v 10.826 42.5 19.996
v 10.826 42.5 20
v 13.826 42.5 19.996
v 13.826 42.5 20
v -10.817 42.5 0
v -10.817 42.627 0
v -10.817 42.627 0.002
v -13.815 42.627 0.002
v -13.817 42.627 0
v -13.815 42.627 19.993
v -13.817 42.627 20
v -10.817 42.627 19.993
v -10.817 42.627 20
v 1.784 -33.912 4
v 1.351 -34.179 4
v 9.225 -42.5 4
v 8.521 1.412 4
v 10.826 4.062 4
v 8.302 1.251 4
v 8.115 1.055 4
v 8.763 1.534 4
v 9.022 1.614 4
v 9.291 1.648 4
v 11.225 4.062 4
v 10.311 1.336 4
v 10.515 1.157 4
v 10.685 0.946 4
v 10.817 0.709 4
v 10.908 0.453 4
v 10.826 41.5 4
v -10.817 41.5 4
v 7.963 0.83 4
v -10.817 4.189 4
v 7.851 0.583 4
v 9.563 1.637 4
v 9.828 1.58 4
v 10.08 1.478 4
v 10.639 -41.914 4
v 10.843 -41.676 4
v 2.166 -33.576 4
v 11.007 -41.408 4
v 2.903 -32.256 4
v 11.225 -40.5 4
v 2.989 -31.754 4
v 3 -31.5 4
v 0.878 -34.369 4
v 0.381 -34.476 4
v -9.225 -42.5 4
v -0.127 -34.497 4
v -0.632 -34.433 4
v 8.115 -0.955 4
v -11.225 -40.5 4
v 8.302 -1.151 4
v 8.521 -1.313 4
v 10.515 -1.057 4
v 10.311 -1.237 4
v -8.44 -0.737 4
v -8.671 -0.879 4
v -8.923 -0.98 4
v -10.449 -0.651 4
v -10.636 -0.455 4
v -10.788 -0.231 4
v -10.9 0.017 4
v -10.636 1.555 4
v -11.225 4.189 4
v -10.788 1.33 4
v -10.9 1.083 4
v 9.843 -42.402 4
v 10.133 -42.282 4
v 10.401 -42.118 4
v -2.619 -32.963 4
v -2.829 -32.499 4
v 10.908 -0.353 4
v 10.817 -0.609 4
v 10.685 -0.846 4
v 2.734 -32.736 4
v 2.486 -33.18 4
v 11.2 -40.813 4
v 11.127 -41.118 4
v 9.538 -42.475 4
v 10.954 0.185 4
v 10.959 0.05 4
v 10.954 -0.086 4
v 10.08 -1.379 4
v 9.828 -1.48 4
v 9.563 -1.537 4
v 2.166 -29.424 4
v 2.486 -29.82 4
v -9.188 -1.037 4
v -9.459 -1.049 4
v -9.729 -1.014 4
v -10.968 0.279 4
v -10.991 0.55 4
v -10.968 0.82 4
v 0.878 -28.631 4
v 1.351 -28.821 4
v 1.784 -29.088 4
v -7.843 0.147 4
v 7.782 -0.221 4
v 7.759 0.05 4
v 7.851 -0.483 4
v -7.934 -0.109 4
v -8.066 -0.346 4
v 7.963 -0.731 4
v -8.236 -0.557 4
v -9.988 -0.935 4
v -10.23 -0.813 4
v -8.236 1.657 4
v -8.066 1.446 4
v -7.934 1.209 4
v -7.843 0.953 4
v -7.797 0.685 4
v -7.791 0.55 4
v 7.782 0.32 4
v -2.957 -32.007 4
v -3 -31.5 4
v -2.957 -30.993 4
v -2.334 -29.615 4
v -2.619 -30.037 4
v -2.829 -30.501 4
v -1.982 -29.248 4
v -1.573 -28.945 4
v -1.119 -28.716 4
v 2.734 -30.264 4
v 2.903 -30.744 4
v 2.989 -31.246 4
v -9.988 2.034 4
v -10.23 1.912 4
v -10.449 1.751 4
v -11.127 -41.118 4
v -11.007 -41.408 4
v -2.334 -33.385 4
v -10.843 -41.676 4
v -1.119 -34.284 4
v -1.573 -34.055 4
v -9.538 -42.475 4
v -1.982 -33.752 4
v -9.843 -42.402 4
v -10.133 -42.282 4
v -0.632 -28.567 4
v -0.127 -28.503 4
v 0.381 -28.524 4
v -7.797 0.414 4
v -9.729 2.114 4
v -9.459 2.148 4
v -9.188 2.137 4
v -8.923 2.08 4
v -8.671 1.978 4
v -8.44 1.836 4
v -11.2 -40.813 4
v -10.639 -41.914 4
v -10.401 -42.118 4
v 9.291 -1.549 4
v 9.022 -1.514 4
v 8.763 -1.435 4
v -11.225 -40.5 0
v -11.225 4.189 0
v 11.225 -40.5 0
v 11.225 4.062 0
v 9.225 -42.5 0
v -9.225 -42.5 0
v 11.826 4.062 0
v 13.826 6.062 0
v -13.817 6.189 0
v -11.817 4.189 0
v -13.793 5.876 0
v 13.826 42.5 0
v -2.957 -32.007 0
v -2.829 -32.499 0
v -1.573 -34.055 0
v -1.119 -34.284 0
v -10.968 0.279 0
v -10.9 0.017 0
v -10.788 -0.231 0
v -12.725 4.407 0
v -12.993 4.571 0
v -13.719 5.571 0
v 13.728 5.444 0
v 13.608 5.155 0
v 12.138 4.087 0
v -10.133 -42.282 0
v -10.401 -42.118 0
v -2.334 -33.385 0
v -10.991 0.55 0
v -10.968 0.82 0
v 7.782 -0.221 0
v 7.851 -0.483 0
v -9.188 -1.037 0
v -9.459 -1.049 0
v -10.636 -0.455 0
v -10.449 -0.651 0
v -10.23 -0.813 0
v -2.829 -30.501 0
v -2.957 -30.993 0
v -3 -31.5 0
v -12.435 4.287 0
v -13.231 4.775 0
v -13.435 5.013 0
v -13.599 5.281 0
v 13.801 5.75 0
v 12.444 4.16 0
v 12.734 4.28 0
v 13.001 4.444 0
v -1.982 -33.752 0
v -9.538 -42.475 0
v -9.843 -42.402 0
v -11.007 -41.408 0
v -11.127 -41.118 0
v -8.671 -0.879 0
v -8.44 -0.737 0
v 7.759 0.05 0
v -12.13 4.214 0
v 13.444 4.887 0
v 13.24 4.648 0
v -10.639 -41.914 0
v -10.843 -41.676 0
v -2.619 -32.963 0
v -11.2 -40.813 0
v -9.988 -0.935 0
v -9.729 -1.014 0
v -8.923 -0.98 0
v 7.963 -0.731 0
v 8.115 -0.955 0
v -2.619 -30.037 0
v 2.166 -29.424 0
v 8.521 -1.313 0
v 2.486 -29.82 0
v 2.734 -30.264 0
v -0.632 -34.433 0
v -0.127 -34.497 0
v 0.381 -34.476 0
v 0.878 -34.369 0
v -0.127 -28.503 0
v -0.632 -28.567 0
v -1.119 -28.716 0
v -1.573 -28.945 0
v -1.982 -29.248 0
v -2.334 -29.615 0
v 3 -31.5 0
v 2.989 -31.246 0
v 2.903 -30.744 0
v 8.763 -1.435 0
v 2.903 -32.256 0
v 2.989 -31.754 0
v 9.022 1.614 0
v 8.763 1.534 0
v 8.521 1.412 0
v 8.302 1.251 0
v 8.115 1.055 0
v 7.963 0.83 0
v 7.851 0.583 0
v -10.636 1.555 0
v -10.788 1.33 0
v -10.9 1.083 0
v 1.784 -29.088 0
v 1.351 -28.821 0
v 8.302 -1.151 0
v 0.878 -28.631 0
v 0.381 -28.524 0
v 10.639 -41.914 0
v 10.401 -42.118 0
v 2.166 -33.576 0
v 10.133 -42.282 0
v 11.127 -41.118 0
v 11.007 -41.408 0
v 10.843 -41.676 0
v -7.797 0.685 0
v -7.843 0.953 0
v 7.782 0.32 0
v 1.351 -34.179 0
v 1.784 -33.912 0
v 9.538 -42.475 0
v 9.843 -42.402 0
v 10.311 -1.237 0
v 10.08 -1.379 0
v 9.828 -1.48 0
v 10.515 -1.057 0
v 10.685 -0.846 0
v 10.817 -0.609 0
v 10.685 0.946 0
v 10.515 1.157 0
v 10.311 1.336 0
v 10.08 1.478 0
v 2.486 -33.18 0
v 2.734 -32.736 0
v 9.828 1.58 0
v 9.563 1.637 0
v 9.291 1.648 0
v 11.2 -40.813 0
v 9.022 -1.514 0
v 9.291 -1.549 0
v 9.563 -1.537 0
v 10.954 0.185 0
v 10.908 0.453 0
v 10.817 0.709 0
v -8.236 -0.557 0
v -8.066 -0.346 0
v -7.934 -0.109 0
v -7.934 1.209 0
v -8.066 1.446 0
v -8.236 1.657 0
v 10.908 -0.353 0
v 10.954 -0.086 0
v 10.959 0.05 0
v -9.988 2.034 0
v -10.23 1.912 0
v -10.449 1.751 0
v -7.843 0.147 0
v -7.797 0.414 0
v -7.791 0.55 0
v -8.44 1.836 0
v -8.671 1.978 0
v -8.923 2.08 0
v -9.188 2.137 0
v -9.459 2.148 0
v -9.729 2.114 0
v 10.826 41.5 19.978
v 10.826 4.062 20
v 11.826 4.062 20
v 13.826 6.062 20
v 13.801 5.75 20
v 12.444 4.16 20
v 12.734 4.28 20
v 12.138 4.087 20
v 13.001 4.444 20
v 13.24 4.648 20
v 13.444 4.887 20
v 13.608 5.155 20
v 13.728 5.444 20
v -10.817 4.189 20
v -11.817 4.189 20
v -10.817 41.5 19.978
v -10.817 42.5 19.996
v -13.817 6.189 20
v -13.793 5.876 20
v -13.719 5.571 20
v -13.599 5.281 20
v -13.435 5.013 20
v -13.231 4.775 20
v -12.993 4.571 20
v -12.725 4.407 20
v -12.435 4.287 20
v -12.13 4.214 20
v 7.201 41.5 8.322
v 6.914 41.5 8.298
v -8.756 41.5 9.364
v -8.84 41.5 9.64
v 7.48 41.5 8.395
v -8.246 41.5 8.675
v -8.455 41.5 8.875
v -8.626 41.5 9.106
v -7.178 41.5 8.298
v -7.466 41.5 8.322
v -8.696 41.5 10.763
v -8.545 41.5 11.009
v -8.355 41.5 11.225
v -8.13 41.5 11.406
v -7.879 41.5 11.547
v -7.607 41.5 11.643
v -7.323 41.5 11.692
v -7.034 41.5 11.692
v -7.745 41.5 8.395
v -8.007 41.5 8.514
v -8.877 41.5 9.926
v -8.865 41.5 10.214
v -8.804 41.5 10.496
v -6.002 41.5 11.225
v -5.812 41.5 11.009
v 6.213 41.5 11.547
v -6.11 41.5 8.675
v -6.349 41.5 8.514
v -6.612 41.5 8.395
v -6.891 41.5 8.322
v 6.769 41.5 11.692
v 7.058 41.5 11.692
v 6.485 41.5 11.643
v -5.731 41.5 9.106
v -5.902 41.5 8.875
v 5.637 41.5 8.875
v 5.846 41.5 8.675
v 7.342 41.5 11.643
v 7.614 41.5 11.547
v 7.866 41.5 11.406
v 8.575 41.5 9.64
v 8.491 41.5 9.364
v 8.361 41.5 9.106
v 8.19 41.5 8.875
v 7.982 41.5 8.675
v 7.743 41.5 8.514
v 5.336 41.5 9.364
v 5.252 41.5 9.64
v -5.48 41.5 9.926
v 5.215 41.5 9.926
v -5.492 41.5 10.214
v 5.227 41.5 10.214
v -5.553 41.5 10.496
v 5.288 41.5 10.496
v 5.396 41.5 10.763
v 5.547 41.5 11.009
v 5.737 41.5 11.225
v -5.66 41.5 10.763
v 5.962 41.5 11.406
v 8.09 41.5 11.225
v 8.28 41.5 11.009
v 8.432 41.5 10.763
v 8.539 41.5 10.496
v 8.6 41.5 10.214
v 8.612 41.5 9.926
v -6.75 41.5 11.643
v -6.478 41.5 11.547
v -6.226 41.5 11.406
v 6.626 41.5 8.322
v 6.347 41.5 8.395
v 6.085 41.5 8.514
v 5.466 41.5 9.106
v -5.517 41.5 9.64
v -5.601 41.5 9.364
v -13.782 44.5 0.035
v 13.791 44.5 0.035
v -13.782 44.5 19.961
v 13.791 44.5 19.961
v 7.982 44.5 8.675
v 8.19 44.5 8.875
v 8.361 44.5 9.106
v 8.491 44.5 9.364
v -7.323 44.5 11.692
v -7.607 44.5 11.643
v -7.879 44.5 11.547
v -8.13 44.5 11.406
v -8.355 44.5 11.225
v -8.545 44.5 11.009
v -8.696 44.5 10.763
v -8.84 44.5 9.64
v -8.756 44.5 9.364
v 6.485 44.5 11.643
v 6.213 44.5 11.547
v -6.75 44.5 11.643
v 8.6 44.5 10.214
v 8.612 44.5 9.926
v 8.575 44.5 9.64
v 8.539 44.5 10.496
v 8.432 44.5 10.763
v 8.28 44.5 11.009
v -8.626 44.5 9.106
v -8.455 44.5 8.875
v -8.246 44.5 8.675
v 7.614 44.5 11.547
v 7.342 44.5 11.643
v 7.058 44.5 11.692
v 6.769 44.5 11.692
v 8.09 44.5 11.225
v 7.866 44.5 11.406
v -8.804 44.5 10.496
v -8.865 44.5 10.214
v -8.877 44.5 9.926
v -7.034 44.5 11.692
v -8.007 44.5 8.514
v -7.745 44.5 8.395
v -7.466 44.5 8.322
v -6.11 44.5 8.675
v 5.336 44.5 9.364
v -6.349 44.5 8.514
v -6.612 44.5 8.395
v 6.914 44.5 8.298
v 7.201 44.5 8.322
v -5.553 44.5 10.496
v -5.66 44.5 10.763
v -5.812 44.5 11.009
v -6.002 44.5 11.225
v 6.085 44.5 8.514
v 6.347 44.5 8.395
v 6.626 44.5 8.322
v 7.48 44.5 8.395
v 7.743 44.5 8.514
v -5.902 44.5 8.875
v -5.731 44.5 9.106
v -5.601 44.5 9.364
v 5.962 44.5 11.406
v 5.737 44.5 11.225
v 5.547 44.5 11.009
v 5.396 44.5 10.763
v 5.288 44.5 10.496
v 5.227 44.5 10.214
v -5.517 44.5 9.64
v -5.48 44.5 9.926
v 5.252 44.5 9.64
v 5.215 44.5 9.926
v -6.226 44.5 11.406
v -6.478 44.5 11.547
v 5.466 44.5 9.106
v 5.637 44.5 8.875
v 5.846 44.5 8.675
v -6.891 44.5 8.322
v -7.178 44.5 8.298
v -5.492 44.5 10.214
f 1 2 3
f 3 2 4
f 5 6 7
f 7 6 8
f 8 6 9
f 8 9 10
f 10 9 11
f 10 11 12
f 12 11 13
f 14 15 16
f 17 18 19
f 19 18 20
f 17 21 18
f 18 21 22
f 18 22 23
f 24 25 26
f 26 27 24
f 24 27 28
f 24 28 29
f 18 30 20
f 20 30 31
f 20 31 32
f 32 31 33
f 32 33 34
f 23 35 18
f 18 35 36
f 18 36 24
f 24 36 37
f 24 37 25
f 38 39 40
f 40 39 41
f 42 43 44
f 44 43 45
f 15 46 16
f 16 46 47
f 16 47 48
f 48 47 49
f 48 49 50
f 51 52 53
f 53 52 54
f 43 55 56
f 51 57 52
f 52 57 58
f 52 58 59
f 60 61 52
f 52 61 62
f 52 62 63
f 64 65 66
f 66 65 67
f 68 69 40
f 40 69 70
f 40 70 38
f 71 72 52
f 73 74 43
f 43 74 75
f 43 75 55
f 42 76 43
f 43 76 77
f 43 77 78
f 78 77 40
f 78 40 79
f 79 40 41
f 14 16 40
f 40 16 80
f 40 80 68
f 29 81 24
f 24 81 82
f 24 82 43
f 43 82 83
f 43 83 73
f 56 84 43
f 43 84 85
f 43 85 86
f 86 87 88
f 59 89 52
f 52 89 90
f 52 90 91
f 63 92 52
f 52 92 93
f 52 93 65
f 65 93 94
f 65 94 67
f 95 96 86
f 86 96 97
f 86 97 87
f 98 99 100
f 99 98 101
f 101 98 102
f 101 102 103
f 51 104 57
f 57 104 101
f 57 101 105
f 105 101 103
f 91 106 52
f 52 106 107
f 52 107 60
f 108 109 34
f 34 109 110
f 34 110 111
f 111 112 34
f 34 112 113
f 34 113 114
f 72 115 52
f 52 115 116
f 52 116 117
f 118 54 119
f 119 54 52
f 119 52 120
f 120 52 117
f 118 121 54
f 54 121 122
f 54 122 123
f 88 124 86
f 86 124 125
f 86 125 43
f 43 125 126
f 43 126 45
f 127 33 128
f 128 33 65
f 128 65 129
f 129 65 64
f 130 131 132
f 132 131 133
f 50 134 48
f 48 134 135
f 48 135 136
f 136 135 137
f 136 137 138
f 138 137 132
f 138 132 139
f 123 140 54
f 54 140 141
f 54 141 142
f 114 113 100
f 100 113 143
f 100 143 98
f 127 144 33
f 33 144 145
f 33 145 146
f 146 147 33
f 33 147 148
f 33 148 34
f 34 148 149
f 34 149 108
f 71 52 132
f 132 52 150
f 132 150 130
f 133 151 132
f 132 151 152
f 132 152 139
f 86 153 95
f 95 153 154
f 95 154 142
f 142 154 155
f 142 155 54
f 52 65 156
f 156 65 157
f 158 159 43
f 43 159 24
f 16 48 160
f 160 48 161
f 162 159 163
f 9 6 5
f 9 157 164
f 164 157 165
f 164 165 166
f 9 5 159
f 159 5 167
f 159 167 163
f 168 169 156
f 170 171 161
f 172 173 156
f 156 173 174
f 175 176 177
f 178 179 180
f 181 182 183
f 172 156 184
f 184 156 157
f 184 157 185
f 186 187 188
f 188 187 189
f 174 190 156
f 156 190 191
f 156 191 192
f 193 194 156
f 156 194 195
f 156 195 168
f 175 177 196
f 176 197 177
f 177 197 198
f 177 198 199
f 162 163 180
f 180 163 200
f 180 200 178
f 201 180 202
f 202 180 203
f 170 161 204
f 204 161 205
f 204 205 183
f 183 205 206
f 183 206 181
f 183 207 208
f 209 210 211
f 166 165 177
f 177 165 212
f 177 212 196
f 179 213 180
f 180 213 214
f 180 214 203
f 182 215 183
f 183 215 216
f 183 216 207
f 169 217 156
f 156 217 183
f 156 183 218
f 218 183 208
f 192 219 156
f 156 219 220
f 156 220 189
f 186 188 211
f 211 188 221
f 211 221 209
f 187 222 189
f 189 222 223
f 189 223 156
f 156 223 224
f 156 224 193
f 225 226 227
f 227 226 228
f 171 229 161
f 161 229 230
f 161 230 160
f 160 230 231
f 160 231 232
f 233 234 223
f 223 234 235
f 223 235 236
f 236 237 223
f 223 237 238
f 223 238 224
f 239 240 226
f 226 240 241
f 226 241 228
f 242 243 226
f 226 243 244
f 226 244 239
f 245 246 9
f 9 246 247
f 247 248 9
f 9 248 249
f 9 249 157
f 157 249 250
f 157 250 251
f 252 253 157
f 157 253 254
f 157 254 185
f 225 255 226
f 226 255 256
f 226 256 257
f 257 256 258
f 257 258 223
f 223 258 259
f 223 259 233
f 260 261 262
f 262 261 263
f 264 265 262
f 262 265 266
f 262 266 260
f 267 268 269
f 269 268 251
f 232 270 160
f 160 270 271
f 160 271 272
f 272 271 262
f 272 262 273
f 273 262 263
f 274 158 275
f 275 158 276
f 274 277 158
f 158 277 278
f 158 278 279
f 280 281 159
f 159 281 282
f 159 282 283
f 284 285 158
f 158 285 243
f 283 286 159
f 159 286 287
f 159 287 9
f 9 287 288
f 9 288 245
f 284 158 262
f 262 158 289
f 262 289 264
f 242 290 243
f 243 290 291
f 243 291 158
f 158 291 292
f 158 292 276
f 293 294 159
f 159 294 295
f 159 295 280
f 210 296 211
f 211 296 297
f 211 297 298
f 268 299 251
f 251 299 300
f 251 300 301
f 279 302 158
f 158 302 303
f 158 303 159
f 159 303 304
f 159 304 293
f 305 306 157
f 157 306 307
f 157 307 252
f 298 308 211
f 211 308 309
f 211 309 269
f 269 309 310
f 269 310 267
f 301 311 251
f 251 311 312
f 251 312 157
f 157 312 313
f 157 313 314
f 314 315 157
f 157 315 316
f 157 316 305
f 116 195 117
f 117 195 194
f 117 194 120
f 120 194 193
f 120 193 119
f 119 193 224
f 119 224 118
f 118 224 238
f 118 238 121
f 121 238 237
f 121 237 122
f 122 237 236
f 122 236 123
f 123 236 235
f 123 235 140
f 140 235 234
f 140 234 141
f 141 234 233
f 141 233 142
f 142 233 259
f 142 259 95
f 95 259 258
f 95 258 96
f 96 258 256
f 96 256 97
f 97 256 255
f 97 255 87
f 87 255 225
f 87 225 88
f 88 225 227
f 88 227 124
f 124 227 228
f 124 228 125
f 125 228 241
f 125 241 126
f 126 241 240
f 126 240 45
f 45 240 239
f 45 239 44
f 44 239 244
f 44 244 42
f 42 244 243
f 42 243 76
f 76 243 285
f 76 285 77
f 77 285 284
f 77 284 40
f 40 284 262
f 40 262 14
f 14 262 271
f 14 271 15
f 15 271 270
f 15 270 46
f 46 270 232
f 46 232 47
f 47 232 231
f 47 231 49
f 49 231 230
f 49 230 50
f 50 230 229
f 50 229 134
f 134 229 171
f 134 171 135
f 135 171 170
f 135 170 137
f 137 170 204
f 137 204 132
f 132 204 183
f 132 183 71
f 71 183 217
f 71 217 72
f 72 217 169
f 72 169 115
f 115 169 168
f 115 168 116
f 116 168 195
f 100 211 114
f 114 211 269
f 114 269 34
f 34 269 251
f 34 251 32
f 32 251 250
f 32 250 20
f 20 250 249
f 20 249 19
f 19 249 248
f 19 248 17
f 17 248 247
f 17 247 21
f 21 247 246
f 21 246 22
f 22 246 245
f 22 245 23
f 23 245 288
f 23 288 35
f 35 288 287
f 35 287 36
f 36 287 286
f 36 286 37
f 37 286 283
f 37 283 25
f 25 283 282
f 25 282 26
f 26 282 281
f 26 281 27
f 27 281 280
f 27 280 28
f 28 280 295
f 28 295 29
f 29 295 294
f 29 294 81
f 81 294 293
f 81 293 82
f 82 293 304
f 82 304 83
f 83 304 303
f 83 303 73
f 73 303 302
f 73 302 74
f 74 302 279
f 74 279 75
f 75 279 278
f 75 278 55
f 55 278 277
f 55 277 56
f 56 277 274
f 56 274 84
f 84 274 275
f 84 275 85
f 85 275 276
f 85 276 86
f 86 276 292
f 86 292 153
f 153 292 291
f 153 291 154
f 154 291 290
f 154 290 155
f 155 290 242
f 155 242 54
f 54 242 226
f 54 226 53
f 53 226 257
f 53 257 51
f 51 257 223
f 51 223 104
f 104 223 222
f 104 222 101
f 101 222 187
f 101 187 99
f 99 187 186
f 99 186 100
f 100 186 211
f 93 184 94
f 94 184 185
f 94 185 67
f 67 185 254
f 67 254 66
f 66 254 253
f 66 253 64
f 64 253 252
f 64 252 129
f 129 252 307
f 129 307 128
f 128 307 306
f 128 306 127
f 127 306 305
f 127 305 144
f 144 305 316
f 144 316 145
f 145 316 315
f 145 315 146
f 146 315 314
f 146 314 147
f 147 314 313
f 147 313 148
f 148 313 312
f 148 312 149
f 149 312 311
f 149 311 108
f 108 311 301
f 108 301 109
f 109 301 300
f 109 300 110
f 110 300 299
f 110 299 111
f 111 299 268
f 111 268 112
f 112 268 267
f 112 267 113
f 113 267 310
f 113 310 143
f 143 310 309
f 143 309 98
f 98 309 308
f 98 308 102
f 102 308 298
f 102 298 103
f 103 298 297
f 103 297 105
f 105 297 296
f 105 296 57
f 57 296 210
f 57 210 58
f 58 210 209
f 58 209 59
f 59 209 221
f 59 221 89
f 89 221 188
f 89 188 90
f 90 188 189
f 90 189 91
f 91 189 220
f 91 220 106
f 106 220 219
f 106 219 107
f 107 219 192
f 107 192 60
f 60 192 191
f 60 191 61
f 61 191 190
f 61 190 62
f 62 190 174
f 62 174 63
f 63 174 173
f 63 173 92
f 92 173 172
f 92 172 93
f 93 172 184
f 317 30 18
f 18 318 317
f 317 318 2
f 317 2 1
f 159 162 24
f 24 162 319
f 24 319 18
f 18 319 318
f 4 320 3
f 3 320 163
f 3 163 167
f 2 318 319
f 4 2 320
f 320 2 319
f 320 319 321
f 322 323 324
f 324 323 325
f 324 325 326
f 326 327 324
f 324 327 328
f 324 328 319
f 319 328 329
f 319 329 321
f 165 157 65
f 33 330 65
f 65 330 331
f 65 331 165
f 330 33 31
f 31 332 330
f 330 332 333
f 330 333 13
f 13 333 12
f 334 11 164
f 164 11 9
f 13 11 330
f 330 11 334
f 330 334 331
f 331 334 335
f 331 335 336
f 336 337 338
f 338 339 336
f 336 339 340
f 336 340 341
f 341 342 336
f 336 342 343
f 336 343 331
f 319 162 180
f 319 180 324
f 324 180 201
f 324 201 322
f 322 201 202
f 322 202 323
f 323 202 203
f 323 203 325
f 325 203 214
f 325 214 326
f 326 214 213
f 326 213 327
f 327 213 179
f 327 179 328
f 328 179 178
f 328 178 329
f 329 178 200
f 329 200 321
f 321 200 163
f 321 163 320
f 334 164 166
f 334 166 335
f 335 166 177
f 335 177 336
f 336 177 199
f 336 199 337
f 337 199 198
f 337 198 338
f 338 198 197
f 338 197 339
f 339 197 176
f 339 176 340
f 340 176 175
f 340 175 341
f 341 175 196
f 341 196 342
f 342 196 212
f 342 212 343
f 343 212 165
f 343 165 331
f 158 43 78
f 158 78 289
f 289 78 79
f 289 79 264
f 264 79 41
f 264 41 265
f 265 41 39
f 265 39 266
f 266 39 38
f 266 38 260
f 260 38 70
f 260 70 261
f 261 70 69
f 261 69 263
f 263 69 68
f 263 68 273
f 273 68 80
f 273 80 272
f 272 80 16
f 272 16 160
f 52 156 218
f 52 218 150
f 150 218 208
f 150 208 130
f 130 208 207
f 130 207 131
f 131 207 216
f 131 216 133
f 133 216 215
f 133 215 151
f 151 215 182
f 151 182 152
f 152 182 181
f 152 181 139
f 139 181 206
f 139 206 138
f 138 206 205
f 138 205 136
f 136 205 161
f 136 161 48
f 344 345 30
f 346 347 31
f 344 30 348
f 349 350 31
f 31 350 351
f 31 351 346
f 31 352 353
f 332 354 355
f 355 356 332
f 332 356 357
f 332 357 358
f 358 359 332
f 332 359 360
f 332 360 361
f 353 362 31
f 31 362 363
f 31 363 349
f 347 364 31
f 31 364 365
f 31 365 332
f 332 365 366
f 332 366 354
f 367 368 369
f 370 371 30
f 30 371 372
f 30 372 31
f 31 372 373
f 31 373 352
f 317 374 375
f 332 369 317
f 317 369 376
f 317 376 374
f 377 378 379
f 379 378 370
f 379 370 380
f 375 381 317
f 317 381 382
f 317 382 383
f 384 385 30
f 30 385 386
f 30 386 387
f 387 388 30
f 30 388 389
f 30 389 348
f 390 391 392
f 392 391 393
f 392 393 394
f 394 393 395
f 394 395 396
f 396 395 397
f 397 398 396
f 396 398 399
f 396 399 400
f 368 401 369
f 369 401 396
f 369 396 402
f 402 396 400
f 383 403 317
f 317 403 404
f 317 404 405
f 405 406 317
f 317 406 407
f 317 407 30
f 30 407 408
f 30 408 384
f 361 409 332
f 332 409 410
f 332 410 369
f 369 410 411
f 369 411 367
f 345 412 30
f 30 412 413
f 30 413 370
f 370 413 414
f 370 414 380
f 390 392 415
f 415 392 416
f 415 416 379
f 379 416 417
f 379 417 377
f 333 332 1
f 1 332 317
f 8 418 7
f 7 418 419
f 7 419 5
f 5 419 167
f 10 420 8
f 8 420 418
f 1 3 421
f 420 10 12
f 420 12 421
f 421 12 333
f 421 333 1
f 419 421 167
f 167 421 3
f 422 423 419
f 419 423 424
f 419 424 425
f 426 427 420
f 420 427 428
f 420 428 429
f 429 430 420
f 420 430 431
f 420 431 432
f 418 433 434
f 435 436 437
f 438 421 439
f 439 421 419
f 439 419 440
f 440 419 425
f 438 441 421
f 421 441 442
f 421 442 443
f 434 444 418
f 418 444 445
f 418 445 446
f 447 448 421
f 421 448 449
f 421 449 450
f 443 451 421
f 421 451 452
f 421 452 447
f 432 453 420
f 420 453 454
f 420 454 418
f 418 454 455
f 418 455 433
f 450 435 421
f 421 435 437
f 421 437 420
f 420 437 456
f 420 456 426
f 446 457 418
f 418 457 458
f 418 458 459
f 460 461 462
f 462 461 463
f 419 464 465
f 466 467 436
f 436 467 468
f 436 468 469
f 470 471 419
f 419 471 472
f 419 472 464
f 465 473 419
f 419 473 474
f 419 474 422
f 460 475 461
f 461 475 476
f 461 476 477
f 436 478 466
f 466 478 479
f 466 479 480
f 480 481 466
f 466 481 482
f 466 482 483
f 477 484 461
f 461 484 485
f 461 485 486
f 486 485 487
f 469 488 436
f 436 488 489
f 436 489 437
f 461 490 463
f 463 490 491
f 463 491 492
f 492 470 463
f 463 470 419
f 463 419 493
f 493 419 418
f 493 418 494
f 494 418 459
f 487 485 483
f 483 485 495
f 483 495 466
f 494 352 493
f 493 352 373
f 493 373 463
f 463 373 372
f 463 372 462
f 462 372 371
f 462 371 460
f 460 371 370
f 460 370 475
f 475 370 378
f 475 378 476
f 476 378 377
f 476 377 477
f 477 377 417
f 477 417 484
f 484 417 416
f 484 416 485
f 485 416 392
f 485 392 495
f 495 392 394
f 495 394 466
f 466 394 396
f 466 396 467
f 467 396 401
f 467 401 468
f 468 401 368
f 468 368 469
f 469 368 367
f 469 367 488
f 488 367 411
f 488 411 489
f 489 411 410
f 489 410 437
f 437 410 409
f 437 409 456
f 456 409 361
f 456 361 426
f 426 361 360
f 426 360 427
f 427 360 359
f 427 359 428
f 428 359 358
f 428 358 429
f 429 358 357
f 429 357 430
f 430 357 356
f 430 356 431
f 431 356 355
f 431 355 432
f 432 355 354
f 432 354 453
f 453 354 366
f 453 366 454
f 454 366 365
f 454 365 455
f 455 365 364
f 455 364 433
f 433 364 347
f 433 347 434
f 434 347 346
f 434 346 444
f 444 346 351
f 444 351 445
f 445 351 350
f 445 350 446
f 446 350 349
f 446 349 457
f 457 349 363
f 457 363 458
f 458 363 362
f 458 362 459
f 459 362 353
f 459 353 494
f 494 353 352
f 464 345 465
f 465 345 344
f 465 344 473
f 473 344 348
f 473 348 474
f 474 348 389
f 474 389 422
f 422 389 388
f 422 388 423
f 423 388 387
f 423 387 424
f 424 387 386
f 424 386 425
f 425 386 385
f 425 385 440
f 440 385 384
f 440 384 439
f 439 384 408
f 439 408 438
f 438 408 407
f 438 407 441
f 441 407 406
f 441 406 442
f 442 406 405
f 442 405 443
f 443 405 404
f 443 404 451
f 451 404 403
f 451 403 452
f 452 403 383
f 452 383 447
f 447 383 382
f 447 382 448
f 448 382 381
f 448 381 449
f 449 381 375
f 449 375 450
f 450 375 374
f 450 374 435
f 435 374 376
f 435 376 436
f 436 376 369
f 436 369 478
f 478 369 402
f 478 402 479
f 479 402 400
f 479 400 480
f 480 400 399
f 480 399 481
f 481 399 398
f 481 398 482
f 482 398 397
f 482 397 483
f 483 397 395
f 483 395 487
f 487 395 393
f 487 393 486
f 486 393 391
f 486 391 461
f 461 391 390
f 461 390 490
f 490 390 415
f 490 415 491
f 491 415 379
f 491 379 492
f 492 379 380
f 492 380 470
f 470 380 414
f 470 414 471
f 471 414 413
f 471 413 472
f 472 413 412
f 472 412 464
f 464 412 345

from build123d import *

# Parameters (mm, degrees)
ESQUISSE1_W                  = 22.45
ESQUISSE1_H                  = 85
BOSS_EXTRU_1_DEPTH           = 4
ESQUISSE2_R                  = 3
ENL_V_MAT_EXTRU_1_DEPTH      = 4
ESQUISSE3_R                  = 1.6
ENL_V_MAT_EXTRU_2_DEPTH      = 4
ESQUISSE4_W                  = 3
ESQUISSE4_H                  = 38.437504141
BOSS_EXTRU_2_DEPTH           = 20
CONG_1_R                     = 2
ESQUISSE7_W                  = 27.642878523
ESQUISSE7_H                  = 19.995510754
BOSS_EXTRU_3_DEPTH           = 2
BOSS_EXTRU_3_TAPER           = 1
BOSS_EXTRU_3_OTHER_WAY_DEPTH = 1
BOSS_EXTRU_3_OTHER_WAY_TAPER = 1
ESQUISSE8_R                  = 1.7
ENL_V_MAT_EXTRU_3_DEPTH      = 58


with BuildPart() as part:
    # Esquisse1 → Boss.-Extru.1 (new body)
    with BuildSketch(Plane.XY):
        Rectangle(ESQUISSE1_W, ESQUISSE1_H)
    extrude(amount=BOSS_EXTRU_1_DEPTH)

    # Esquisse2 → Enlèv. mat.-Extru.1 (cut)
    with BuildSketch(Plane.XY):
        with Locations((0, -31.5)):
            Circle(ESQUISSE2_R)
    extrude(amount=ENL_V_MAT_EXTRU_1_DEPTH, mode=Mode.SUBTRACT)

    # Esquisse3 → Enlèv. mat.-Extru.2 (cut)
    with BuildSketch(Plane.XY):
        with Locations((-9.391474789, 0.549780329)):
            Circle(ESQUISSE3_R)
        with Locations((9.359403649, 0.04974993)):
            Circle(ESQUISSE3_R)
    extrude(amount=ENL_V_MAT_EXTRU_2_DEPTH, mode=Mode.SUBTRACT)

    # Esquisse4 → Boss.-Extru.2 (add)
    with BuildSketch(Plane.XY):
        with Locations((12.325615706, 23.28124793)):
            Rectangle(ESQUISSE4_W, ESQUISSE4_H)
        with Locations((-12.317262817, 23.407822495)):
            Rectangle(ESQUISSE4_W, ESQUISSE4_H)
    extrude(amount=BOSS_EXTRU_2_DEPTH)

    # Congé1
    cong_1_edges = [part.edges().sort_by_distance(p)[0] for p in [
        (13.825615706, 4.062495859, 10),
        (-13.817262817, 4.189070425, 10),
        (-11.225, -42.5, 2),
        (11.225, -42.5, 2),
    ]]
    fillet(cong_1_edges, radius=CONG_1_R)

    # Esquisse7 → Boss.-Extru.3 (add)
    with BuildSketch(Plane(origin=(0, 42.5, 0), x_dir=(1, 0, 0), z_dir=(0, 1, 0))):
        with Locations((0.004176444, -9.997755377)):
            Rectangle(ESQUISSE7_W, ESQUISSE7_H)
    extrude(amount=BOSS_EXTRU_3_DEPTH, taper=BOSS_EXTRU_3_TAPER)

    # Esquisse7 → Boss.-Extru.3 other way (add)
    with BuildSketch(Plane(origin=(0, 42.5, 0), x_dir=(1, 0, 0), z_dir=(0, 1, 0))):
        with Locations((0.004176444, -9.997755377)):
            Rectangle(ESQUISSE7_W, ESQUISSE7_H)
    extrude(amount=-BOSS_EXTRU_3_OTHER_WAY_DEPTH, taper=BOSS_EXTRU_3_OTHER_WAY_TAPER)

    # Esquisse8 → Enlèv. mat.-Extru.3 (cut)
    with BuildSketch(Plane(origin=(0, 0, 0), x_dir=(1, 0, 0), z_dir=(0, 1, 0))):
        with Locations((6.913641528, -9.997755377)):
            Circle(ESQUISSE8_R)
        with Locations((-7.178390026, -9.997755377)):
            Circle(ESQUISSE8_R)
    extrude(amount=ENL_V_MAT_EXTRU_3_DEPTH, mode=Mode.SUBTRACT)


solid = part.part
